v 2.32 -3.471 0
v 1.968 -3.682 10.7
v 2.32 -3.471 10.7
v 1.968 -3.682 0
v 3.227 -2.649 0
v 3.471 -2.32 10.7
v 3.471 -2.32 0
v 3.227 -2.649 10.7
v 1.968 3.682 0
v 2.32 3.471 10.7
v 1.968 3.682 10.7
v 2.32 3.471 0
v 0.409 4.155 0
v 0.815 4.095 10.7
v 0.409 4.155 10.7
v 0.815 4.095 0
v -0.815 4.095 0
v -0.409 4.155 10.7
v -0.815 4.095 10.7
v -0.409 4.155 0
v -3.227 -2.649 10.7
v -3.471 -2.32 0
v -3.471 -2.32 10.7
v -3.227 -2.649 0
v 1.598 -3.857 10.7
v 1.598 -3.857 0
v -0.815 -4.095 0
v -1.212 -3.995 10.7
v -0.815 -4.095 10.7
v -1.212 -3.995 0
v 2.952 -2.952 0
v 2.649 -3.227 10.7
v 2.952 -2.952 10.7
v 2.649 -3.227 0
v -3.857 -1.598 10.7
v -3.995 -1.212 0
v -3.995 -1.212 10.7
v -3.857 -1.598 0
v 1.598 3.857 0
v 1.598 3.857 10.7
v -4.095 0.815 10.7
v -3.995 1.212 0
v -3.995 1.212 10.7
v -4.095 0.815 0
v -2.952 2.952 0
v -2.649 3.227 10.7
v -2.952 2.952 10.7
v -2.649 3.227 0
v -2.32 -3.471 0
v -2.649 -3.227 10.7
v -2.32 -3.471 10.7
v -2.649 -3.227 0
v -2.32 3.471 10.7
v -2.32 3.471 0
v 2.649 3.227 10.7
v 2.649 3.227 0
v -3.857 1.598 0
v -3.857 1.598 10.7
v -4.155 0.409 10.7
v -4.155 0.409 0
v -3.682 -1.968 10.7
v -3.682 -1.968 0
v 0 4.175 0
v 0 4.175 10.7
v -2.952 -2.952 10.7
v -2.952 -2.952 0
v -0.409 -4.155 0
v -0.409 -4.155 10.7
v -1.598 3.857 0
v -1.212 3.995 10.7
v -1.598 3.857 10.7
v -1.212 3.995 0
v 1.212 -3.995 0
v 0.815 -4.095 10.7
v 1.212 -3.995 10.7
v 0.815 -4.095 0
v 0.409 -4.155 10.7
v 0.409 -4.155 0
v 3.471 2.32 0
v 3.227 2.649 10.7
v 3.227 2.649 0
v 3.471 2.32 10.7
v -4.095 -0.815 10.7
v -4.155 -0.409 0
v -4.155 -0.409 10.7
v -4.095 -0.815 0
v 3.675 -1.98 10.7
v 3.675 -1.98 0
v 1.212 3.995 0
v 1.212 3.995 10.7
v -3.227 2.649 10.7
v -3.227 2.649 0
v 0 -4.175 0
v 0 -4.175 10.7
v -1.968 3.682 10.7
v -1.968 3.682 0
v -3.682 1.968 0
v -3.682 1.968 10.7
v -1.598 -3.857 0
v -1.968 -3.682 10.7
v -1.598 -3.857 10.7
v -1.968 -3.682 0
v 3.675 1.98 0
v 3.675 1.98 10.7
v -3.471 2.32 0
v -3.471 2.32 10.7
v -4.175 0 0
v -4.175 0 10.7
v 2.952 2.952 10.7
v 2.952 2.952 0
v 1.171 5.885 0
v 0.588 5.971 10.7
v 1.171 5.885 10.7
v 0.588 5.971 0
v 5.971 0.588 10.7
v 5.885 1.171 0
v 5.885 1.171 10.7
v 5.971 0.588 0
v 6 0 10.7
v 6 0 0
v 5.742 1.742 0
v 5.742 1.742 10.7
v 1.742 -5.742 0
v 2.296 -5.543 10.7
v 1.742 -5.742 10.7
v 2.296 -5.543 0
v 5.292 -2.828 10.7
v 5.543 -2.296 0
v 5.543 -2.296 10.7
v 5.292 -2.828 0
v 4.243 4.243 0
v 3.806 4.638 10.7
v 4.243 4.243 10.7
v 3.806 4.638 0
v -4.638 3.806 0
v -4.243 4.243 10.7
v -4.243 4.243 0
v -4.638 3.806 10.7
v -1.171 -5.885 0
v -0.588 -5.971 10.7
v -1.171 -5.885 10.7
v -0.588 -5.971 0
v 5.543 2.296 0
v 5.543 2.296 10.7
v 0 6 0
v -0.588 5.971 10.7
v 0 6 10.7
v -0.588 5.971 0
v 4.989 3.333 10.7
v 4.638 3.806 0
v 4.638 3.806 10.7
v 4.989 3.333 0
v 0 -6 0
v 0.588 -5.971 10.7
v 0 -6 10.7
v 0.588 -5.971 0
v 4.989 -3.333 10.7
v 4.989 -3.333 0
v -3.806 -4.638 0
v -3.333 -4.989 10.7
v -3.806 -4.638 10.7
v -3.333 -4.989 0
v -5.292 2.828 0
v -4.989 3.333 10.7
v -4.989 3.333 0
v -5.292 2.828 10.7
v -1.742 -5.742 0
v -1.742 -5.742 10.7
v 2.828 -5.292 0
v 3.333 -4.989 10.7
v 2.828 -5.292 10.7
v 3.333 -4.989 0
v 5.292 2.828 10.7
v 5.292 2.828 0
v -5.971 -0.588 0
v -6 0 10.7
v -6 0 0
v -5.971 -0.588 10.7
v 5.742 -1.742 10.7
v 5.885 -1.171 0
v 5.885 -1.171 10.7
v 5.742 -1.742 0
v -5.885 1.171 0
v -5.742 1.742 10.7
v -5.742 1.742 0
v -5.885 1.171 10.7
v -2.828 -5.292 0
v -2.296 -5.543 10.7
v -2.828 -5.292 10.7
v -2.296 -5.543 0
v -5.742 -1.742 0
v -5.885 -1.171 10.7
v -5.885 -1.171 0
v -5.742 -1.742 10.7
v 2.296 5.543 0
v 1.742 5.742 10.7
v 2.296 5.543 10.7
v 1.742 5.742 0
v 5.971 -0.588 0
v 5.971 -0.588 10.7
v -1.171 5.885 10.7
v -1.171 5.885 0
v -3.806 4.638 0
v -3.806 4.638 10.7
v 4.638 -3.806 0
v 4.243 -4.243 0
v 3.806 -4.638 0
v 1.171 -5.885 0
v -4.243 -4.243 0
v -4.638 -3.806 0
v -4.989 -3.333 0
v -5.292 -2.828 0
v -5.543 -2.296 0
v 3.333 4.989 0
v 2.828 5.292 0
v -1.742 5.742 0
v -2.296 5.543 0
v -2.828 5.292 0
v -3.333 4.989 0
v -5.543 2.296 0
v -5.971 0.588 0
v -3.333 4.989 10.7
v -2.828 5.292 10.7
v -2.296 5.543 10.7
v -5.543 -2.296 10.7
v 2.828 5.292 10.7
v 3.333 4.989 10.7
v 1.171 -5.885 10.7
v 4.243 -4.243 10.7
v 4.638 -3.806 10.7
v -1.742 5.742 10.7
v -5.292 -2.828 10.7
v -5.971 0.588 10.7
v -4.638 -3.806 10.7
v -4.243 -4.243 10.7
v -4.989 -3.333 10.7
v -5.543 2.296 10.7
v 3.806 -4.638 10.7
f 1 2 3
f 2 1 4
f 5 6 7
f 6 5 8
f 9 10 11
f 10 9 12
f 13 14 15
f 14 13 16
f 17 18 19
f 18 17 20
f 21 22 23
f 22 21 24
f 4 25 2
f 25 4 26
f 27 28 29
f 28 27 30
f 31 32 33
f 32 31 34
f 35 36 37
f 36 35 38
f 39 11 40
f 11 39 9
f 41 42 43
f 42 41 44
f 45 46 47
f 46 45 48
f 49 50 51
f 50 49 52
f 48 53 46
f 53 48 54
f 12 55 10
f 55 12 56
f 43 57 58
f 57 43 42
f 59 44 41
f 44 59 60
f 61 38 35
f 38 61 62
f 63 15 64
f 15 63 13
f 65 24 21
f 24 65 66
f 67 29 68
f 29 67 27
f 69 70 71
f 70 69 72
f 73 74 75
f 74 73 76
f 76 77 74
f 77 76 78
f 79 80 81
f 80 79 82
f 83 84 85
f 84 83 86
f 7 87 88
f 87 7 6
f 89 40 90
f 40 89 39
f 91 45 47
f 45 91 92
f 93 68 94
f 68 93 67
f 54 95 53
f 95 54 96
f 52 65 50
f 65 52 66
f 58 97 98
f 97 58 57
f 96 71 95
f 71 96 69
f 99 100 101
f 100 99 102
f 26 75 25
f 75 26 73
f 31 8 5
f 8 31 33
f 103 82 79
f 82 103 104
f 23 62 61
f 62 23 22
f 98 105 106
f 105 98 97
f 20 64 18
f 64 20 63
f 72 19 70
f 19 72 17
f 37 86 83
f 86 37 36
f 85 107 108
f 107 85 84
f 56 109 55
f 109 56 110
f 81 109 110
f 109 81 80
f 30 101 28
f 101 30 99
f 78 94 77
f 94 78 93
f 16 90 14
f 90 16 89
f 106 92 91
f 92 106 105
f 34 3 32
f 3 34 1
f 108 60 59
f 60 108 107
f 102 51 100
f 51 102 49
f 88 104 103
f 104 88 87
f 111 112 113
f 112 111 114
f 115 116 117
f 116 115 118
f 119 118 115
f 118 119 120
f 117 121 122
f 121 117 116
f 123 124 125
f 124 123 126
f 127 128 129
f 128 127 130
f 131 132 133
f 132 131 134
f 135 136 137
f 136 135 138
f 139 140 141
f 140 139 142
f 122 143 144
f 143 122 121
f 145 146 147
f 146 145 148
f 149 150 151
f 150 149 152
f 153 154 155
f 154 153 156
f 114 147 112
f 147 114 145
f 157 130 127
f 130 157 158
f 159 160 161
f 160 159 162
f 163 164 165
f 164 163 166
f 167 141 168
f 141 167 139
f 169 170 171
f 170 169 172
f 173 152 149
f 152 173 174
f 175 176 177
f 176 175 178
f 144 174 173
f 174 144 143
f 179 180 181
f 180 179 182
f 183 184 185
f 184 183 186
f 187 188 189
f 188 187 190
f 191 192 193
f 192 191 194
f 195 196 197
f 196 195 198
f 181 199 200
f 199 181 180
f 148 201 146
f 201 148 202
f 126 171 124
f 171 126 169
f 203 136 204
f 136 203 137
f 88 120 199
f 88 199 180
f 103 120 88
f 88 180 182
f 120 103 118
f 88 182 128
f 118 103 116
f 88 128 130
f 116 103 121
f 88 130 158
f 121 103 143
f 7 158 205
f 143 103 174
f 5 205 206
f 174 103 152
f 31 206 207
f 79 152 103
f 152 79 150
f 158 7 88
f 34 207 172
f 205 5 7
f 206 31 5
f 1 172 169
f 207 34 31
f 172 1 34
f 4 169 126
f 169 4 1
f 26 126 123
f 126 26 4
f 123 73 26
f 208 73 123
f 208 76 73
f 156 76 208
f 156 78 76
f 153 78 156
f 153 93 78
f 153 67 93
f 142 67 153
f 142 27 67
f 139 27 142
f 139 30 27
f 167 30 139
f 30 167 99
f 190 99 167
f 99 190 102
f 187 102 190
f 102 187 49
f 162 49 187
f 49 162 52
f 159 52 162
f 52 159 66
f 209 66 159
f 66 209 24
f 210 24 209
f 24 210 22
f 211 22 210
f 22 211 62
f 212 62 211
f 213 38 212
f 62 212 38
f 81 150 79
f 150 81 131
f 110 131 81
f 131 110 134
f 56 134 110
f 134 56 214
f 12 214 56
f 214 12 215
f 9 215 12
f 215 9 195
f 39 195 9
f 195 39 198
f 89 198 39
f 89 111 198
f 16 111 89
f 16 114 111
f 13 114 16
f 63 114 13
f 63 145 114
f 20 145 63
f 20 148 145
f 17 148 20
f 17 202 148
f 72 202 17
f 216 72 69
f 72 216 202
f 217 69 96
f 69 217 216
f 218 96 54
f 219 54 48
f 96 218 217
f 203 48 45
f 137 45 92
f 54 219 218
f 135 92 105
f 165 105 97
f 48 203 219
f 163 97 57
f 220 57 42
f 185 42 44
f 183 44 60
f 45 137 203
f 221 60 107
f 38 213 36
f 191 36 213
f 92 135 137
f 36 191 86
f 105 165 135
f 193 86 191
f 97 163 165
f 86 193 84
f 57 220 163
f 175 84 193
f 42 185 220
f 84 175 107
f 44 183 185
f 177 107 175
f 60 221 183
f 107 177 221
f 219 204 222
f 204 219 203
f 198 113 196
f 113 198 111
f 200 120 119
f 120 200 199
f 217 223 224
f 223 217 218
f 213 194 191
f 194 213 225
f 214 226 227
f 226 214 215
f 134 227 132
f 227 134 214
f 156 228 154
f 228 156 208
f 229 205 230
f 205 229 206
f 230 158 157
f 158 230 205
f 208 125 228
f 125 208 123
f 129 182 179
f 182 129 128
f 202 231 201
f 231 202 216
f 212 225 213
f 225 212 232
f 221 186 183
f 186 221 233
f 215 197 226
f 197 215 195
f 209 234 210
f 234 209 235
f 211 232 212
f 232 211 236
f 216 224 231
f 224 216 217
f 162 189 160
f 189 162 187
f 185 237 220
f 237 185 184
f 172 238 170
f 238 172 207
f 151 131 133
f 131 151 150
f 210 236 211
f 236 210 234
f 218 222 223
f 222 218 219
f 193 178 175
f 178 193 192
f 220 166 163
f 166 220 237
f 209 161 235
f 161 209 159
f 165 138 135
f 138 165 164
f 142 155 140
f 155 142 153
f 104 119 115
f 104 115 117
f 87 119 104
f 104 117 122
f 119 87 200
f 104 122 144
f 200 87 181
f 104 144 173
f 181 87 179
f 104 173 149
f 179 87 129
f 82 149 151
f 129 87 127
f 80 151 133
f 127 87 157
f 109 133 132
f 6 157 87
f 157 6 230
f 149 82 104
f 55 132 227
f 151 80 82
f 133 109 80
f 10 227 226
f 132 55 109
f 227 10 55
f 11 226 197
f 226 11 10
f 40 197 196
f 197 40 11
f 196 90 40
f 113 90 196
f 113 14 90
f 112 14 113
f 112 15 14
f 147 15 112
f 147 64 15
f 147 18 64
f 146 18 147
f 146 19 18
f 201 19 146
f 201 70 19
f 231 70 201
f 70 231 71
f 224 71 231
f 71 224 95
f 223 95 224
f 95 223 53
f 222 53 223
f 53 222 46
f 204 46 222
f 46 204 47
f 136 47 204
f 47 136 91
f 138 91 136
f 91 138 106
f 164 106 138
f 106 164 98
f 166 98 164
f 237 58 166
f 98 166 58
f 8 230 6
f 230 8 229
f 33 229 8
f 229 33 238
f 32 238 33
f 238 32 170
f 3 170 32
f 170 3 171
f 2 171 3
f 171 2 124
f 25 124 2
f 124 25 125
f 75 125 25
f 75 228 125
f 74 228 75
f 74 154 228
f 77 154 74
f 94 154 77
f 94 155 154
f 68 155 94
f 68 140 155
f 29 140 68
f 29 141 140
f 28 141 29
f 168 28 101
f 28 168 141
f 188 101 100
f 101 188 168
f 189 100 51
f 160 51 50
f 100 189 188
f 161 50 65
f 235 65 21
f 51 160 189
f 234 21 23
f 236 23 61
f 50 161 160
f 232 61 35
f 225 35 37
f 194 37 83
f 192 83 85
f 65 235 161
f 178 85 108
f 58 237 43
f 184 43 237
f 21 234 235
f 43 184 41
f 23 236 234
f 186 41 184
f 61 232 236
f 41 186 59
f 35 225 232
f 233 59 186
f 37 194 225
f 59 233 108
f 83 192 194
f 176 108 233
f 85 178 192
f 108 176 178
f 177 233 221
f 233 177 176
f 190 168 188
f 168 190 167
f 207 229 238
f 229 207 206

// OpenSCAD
// file: parameters.scad
// =============================================================================
// Gen-BV — nightly 2026-10-10 (physics_scorer, honest magpylib watts)
// Fewer, wider-spaced poles: 6 Ø20 per rotor (12 of the 16) on an R57 ring over nine 35.2° bobbins (r 39–74 mm, 15.7 mm build). Wider pole pitch means less pole-to-pole leakage and bigger coils, but the electrical frequency drops 25 % and 4 Ø20 sit idle; diametric Ø5 assists lowered the score here, so none are fitted. The scorer puts it at about 62 % of Gen-BR.
// Clocking 0 deg (magnets N facing S) + D-flat keyed bore + index notch + flip-symmetric hole map.
// Windable 2-piece bobbin; turns = physics_scorer turns_fit; copper only between flanges.
// Steel back-iron: 2× Ø142 × 4.76 mm (3/16") mild-steel discs (steel_backiron_disc.dxf); magnets sit ON the steel
// (through-pockets) -> score with --back-iron. Night 2026-10-10.
// =============================================================================
topology            = "dual_rotor";

// --- Wire / winding (physics_scorer winding-fit) -------------------------------
wire_awg            = 26;
wire_od             = 0.45;     // insulated OD mm (bare 0.405)
fill_realistic      = 0.65;     // insulated-wire area / window (DENSE layered wind with a jig; scorer cap 0.65)
turns               = 518;       // = physics_scorer turns_fit (do NOT raise)
coil_former_type    = "bobbin";
coil_core_inset     = 15.66;     // radial copper build: hub = copper boundary inset by this
wind_build_axial    = 0.0;      // nothing proud of the flanges
wind_build_radial   = 0.0;

// --- Bobbin (base + lid) ---------------------------------------------------------
coil_id_r           = 39.00;    // copper boundary sector
coil_od_r           = 74.00;
span_deg            = 35.15;    // = pitch - 2*asin((wall+0.85)/coil_id_r) -> >=1.2 mm stator web
former_web          = 8.10;     // copper height between flanges (TALL copper: steel keeps Bz up)
flange_t            = 0.80;     // >= 0.8 mm FDM wall rule (tall winds push on the flanges)
wall                = 0.80;     // flange lip beyond copper
former_bare_h       = former_web + 2 * flange_t;
coil_envelope_h     = former_bare_h + 2 * wind_build_axial;
tab_w               = 7.0;
tab_len             = 7.0;
tab_h               = former_bare_h / 2;
pin_d               = 1.9;      // 1.75 mm filament locating pin
coil_mount_r        = coil_od_r + 0.2 + 4.0;
lead_y              = 1.6;
lead_slot_w         = 0.9;
lead_groove_d       = 0.6;

// --- Gap -------------------------------------------------------------------------
run_clear           = 0.50;     // rotor face -> flange
gap_spacer_h        = run_clear + wind_build_axial;
m2m                 = coil_envelope_h + 2 * run_clear;   // rotor face to rotor face (= gap_sleeve length)

// --- Stator ----------------------------------------------------------------------
coil_stations       = 9;
bay_clear           = 0.25;
stator_thick        = former_bare_h;                        // bobbins flush both faces
stator_od           = 166;
shaft_clear_stator  = 14.0;     // stator is static; gap sleeve OD 12 spins inside

// --- Rotor(s) --------------------------------------------------------------------
magnet_Br           = 1.43;     // N52
magnet_d_large      = 20.0;
magnet_h_large      = 5.0;      // one O20x5 per pocket
magnet_h_small      = 5.0;      // unused: no O5 pockets in this kit
halbach_magnetisation = "none";  // NO O5 assist magnets in this kit (scan: they lower the 4-pole score)
rotor_b_same_axis   = true;     // same-index magnets share one axis: N faces S across the gap
large_pocket_d      = 20.3;
small_pocket_d      = 5.3;
pocket_h            = 5.00;     // THROUGH the carrier: magnet back face sits on the steel disc (FLUSH seat: carrier = magnet height, magnet face level with the rotor face)
large_n             = 6;
R_large             = 57.0;
small_r_list        = [];       // no O5 pockets
carrier_od          = 142.0;
carrier_thick       = pocket_h;
hub_h               = 12.0;     // > steel_t + insert: radial set-screw clears the steel
hub_od              = 24.0;     // slim hub so the M4 brace rods fit at R~18 inside the coil ring
hub_insert_d        = 4.0;      // M3 heat-set insert, radial, bears on the D-flat
rotor_b_offset_deg  = 0.0;      // CLOCKING: magnets directly opposite
shaft_key           = "dflat";
dflat_depth         = 0.5;      // 8 mm shaft with 0.5 mm flat (7.5 across flat)
index_notch_d       = 3.0;

// --- Steel back-iron (buyable laser-cut) -------------------------------------------
steel_t             = 4.76;      // mild steel thickness (image method ignores it; sized from steel_flux.py so the return path stays well below saturation)
steel_center_hole   = 26.0;     // slips over the rotor hub (OD 24)
steel_od            = carrier_od;   // steel disc OD = rotor carrier OD

// --- Modular MAX interface ----------------------------------------------------------
shaft_bore          = 8.35;
dflat_x             = 4.0 - dflat_depth + (shaft_bore - 8.0) / 2;
bearing_d           = 21.85;
bearing_h           = 7.2;
m3_clear            = 3.5;
bolt_r_inner        = 30.0;     // M3 steel-disc clamp bolts (inside the magnet ring)
bolt_n_inner        = 4;
bolt_inner_angles   = [0, 90, 180, 270];
bolt_r_outer        = 66.0;     // second M3 steel-disc clamp ring
bolt_outer_angles   = [15, 165, 195, 345];
flange_bolt_r       = 77.0;     // frame rods: OUTSIDE the rotor OD (rotors spin inside them)
flange_bolt_n       = 9;
flange_bolt_offset  = 20.00;    // between coil stations -> never cuts a lead groove/tab
brace_r             = 18.0;
brace_d             = 4.3;      // temporary M4 jack rods (assembly only)
brace_n             = 4;
brace_angles        = [45, 135, 225, 315];          // flip-symmetric

spacer_pad_od       = 14.0;
spacer_pad_id       = m3_clear;
endbell_od          = 164.0;
endbell_thick       = 8.0;
endbell_shaft_clear = 10.0;
collar_h            = 10.0;
standoff_od         = 9.0;
frame_standoff_h    = run_clear + carrier_thick + hub_h + collar_h + 2.0;
sleeve_od           = 12.0;
plate_max_mm        = 410;

$fn = 64;
// main file
// Gen-BV — gap sleeve: rigid spacer on the shaft BETWEEN the two rotor carriers (passes through the stator
// hole). Length = m2m, so it sets the magnet gap and carries the full magnet pull. Print x1, upright.
include <parameters.scad>;
$fn = 64;
// D-flat keyed bore: flat faces +X (angle 0 = magnet pocket 0 = index notch)
module dflat_bore(h) {
    intersection() {
        cylinder(d=shaft_bore, h=h);
        translate([-shaft_bore, -shaft_bore, 0]) cube([shaft_bore + dflat_x, 2*shaft_bore, h]);
    }
}

difference() {
    cylinder(d=sleeve_od, h=m2m);
    translate([0, 0, -0.1]) dflat_bore(m2m + 0.2);
}
